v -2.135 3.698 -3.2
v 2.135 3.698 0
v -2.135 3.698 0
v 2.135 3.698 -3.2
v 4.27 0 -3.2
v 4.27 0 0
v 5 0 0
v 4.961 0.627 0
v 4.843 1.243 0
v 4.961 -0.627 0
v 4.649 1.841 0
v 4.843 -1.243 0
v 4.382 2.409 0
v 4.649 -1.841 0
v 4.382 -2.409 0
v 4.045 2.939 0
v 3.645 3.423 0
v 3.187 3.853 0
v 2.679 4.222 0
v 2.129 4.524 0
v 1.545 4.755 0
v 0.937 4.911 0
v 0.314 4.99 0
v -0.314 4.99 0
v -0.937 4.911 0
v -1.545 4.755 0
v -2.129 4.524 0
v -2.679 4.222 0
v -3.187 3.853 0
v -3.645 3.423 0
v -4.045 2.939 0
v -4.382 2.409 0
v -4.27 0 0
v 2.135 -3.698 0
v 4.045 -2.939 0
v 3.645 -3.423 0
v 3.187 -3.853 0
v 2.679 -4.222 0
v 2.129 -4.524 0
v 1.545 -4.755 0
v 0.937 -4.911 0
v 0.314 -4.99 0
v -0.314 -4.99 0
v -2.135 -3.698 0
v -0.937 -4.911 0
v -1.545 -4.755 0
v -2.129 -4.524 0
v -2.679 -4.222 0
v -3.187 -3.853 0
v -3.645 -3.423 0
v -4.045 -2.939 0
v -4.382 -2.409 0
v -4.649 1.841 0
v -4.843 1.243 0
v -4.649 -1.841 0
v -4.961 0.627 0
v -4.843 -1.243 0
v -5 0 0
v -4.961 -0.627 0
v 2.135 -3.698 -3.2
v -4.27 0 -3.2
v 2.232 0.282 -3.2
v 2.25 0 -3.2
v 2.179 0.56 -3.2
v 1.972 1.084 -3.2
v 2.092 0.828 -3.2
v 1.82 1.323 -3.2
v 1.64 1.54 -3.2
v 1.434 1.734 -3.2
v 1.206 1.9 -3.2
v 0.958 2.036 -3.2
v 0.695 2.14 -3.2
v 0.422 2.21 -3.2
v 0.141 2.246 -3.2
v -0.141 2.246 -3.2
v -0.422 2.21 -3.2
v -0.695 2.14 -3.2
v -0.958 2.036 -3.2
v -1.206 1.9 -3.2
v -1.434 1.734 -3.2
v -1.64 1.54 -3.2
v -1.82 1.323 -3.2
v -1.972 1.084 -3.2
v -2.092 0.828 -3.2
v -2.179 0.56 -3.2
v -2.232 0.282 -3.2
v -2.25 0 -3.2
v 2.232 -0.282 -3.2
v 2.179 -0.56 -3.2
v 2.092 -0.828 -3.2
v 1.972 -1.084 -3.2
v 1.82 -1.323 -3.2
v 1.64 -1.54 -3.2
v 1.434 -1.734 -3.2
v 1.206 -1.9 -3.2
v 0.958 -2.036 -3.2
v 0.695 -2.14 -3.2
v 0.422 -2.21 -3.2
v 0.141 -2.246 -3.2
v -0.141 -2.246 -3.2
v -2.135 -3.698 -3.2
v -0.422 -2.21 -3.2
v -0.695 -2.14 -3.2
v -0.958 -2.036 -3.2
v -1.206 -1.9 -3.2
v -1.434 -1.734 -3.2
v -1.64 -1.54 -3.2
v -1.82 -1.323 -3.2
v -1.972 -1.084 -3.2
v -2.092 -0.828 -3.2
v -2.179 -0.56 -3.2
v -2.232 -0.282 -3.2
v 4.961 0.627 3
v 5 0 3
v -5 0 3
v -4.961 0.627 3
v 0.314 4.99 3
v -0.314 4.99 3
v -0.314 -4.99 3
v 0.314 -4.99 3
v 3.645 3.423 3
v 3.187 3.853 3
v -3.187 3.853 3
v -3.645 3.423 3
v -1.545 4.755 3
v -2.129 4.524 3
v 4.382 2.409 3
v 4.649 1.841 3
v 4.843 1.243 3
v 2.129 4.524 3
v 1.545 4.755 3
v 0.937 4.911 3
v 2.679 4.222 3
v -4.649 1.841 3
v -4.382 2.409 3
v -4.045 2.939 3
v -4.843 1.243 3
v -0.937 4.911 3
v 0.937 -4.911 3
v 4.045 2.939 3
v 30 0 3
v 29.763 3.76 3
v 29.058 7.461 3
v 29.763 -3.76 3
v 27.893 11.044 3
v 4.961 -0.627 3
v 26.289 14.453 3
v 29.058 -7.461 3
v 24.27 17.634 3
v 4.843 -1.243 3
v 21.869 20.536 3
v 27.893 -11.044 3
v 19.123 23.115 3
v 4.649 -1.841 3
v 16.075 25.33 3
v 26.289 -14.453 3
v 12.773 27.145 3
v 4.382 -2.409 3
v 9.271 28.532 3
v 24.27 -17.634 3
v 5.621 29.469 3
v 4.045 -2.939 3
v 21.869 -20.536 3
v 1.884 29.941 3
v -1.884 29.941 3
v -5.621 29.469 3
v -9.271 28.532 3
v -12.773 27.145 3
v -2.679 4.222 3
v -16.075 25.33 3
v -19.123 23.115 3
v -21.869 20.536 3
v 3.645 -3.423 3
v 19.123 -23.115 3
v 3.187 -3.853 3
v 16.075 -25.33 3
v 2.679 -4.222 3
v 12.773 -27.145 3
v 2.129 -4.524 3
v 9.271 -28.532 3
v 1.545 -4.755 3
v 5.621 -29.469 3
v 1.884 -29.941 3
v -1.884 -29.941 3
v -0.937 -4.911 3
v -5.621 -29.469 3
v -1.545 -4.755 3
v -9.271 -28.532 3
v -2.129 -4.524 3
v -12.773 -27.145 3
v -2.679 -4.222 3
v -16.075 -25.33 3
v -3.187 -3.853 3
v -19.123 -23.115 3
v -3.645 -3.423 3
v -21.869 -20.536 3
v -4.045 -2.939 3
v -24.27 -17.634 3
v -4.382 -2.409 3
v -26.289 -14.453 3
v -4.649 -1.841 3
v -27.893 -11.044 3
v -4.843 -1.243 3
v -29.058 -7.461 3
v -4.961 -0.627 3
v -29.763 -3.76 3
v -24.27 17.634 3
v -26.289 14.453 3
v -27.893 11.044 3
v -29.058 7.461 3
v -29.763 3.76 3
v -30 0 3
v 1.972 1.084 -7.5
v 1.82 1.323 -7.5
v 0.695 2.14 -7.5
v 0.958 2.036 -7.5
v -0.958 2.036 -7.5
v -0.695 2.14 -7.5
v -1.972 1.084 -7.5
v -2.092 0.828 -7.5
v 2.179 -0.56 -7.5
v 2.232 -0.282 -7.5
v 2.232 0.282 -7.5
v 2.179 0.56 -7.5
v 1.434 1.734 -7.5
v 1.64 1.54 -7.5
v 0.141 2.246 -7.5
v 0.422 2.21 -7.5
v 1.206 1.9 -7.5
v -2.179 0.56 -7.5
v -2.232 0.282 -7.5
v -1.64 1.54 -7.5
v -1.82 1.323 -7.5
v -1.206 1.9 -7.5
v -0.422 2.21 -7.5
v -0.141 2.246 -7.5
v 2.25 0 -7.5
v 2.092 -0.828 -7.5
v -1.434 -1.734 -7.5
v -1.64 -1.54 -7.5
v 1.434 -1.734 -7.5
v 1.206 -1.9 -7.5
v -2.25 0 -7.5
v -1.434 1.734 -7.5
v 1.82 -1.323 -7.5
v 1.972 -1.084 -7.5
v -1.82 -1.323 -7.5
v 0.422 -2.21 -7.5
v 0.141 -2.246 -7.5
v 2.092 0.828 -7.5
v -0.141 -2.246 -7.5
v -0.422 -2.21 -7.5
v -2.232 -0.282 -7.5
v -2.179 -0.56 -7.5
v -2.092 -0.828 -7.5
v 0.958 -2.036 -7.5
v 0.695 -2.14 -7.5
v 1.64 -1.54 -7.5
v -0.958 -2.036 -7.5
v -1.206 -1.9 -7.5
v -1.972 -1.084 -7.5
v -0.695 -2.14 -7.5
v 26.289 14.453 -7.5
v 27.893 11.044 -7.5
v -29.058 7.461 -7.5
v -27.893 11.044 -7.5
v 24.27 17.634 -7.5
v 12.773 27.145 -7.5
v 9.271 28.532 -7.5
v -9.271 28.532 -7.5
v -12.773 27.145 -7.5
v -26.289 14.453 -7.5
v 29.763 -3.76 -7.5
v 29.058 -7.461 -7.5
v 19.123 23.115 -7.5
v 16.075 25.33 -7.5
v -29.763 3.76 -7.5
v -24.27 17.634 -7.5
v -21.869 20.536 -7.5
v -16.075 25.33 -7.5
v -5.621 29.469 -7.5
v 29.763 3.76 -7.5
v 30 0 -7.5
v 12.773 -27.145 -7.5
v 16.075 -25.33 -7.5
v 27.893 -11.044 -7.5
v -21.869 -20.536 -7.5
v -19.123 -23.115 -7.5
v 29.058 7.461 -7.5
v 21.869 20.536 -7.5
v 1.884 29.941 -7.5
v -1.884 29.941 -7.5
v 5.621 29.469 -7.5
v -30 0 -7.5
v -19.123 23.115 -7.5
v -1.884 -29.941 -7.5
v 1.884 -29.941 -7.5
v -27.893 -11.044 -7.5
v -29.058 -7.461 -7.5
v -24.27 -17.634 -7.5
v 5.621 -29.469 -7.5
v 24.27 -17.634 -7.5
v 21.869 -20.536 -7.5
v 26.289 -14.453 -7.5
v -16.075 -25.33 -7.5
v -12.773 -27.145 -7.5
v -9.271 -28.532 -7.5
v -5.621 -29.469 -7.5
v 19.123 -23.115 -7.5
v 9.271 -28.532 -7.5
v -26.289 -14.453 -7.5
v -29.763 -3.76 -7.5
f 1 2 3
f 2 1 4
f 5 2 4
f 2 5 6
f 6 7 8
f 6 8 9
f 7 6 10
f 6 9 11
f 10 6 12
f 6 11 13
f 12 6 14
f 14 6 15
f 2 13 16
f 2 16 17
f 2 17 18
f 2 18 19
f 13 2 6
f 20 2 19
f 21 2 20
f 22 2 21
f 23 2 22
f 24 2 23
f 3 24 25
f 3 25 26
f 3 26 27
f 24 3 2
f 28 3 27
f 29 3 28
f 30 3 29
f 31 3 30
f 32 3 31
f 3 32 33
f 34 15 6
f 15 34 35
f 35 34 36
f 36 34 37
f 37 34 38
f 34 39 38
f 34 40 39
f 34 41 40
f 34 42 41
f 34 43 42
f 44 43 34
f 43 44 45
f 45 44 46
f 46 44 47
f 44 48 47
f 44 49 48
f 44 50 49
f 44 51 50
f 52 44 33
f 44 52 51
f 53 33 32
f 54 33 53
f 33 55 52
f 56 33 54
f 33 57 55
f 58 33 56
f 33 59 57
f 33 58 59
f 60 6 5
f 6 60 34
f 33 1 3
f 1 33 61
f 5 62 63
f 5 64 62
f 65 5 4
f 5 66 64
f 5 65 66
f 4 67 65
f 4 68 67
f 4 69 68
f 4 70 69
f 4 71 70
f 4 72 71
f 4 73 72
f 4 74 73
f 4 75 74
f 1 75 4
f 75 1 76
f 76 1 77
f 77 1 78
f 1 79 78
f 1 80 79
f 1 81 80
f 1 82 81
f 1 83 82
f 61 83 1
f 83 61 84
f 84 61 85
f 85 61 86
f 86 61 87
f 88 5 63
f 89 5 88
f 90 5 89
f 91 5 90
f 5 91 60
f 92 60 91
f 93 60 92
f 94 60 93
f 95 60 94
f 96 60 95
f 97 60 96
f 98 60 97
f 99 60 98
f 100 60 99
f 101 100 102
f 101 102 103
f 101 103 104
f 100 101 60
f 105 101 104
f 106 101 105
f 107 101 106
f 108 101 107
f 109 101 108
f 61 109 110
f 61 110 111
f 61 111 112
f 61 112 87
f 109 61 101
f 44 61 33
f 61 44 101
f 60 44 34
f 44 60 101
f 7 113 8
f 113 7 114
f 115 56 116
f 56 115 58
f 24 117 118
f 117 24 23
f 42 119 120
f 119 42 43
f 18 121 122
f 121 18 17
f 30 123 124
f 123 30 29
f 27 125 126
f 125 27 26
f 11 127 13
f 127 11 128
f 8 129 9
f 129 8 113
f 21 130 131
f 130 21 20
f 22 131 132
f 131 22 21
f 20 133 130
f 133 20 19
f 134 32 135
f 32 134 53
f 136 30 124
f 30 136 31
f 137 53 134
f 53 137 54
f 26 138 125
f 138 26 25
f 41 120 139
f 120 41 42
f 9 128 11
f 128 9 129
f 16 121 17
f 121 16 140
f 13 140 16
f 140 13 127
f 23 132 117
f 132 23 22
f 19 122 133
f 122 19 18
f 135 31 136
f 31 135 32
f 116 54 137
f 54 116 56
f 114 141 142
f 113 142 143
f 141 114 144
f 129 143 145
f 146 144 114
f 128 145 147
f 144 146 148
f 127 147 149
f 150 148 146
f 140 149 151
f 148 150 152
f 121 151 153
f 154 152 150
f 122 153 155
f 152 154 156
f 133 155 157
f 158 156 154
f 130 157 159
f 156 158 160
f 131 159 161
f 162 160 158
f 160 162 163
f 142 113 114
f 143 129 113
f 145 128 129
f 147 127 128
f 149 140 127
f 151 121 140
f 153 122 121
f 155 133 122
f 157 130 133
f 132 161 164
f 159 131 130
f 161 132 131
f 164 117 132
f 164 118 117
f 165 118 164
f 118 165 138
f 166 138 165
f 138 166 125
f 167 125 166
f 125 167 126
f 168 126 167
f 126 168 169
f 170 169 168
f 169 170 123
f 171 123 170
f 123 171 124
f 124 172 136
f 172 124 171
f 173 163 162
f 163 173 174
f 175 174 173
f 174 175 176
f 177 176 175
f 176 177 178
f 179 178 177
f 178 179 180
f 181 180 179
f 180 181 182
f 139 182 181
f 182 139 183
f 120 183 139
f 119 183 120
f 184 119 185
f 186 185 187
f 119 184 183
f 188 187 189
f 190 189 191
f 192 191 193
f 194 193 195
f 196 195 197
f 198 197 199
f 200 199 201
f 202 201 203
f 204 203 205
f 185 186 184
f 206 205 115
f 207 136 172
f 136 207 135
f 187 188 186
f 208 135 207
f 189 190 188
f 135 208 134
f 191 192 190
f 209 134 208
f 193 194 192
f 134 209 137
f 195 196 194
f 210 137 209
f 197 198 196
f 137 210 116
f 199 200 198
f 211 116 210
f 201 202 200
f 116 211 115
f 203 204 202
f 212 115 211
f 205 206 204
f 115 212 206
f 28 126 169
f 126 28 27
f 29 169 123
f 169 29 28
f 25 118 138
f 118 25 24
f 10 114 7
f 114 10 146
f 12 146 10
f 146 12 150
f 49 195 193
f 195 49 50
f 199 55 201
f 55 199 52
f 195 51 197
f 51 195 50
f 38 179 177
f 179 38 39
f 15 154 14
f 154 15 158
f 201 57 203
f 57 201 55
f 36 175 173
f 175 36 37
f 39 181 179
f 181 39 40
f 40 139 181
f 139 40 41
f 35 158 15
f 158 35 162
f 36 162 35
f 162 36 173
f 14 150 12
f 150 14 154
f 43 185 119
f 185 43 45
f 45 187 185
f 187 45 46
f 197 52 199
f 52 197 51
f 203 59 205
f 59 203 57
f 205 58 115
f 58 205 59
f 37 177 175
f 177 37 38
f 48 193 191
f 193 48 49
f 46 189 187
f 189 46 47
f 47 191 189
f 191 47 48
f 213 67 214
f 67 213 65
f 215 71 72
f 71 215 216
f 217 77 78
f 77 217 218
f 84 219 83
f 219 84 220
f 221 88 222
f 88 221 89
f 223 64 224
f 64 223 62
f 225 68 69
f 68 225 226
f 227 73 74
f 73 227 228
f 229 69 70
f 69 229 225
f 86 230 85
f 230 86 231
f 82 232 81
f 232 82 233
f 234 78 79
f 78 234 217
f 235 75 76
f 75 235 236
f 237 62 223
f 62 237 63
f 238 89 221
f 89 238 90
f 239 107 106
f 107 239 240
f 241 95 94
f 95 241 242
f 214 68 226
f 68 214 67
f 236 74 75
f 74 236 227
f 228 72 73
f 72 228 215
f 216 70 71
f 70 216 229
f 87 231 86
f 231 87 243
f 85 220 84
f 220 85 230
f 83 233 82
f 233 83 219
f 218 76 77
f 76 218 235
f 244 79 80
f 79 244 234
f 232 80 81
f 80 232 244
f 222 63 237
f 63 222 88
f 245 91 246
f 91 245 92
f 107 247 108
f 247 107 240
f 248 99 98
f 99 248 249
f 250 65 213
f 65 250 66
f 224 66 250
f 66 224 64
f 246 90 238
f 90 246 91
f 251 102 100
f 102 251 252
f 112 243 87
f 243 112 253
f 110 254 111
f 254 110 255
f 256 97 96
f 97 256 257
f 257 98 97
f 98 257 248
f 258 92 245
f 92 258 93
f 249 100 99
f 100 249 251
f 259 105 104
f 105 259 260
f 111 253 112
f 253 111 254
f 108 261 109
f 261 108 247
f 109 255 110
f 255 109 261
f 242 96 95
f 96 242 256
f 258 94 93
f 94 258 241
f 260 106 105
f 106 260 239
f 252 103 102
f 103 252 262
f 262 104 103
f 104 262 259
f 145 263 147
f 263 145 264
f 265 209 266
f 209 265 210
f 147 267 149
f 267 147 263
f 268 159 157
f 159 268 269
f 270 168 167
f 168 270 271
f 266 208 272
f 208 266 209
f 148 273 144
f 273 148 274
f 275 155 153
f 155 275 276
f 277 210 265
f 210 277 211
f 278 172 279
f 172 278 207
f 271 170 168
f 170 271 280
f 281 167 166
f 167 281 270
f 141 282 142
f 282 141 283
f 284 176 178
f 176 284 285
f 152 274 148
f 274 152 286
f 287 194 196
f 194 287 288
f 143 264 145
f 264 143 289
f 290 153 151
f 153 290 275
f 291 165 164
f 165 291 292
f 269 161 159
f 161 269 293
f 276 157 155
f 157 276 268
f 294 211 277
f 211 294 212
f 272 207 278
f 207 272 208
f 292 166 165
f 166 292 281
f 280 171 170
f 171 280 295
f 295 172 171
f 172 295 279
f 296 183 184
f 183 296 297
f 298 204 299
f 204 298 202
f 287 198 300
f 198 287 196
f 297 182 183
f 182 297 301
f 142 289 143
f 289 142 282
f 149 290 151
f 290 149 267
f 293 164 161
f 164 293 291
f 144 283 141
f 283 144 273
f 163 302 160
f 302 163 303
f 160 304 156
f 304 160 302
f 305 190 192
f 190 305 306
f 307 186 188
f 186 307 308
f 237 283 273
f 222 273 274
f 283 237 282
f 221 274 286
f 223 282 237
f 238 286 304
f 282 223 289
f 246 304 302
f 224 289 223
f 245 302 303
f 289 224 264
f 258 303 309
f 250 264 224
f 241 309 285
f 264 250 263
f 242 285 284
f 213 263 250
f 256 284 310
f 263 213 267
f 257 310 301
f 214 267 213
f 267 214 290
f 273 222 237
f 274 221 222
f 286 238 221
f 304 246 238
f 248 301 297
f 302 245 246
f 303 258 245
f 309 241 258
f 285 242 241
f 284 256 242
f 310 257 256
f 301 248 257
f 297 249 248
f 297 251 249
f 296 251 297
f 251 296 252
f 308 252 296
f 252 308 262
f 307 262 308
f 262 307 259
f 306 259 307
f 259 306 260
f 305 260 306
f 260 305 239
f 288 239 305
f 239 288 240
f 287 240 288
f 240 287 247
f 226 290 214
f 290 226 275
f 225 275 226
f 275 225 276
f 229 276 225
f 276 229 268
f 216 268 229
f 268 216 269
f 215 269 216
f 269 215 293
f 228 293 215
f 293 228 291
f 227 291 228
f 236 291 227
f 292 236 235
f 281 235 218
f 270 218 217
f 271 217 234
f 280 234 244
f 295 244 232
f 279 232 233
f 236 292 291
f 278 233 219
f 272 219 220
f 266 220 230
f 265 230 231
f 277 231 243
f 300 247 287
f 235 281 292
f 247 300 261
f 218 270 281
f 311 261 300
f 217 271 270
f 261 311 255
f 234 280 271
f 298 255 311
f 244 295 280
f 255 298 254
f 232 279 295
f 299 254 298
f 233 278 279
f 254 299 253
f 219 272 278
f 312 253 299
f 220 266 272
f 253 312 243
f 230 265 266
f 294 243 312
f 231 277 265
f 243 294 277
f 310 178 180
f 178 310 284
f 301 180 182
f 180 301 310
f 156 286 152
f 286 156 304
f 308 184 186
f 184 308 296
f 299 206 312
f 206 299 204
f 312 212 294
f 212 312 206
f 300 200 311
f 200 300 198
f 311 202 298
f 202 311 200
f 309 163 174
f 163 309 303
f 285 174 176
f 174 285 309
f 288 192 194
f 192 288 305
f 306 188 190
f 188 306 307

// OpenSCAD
$fn = 50;


difference() {
	union() {
		translate(v = [0, 0, -7.5000000000]) {
			cylinder(h = 10.5000000000, r = 30.0000000000);
		}
	}
	union() {
		translate(v = [0, 0, 0]) {
			rotate(a = [0, 0, 0]) {
				difference() {
					union() {
						translate(v = [0, 0, -3.2000000000]) {
							linear_extrude(height = 3.2000000000) {
								polygon(points = [[4.2698000000, 0.0000000000], [2.1349000000, 3.6977552691], [-2.1349000000, 3.6977552691], [-4.2698000000, 0.0000000000], [-2.1349000000, -3.6977552691], [2.1349000000, -3.6977552691]]);
							}
						}
					}
					union();
				}
			}
		}
		#cylinder(h = 3, r = 5.0000000000);
		#translate(v = [0, 0, -100.0000000000]) {
			cylinder(h = 200, r = 2.2500000000);
		}
	}
}
